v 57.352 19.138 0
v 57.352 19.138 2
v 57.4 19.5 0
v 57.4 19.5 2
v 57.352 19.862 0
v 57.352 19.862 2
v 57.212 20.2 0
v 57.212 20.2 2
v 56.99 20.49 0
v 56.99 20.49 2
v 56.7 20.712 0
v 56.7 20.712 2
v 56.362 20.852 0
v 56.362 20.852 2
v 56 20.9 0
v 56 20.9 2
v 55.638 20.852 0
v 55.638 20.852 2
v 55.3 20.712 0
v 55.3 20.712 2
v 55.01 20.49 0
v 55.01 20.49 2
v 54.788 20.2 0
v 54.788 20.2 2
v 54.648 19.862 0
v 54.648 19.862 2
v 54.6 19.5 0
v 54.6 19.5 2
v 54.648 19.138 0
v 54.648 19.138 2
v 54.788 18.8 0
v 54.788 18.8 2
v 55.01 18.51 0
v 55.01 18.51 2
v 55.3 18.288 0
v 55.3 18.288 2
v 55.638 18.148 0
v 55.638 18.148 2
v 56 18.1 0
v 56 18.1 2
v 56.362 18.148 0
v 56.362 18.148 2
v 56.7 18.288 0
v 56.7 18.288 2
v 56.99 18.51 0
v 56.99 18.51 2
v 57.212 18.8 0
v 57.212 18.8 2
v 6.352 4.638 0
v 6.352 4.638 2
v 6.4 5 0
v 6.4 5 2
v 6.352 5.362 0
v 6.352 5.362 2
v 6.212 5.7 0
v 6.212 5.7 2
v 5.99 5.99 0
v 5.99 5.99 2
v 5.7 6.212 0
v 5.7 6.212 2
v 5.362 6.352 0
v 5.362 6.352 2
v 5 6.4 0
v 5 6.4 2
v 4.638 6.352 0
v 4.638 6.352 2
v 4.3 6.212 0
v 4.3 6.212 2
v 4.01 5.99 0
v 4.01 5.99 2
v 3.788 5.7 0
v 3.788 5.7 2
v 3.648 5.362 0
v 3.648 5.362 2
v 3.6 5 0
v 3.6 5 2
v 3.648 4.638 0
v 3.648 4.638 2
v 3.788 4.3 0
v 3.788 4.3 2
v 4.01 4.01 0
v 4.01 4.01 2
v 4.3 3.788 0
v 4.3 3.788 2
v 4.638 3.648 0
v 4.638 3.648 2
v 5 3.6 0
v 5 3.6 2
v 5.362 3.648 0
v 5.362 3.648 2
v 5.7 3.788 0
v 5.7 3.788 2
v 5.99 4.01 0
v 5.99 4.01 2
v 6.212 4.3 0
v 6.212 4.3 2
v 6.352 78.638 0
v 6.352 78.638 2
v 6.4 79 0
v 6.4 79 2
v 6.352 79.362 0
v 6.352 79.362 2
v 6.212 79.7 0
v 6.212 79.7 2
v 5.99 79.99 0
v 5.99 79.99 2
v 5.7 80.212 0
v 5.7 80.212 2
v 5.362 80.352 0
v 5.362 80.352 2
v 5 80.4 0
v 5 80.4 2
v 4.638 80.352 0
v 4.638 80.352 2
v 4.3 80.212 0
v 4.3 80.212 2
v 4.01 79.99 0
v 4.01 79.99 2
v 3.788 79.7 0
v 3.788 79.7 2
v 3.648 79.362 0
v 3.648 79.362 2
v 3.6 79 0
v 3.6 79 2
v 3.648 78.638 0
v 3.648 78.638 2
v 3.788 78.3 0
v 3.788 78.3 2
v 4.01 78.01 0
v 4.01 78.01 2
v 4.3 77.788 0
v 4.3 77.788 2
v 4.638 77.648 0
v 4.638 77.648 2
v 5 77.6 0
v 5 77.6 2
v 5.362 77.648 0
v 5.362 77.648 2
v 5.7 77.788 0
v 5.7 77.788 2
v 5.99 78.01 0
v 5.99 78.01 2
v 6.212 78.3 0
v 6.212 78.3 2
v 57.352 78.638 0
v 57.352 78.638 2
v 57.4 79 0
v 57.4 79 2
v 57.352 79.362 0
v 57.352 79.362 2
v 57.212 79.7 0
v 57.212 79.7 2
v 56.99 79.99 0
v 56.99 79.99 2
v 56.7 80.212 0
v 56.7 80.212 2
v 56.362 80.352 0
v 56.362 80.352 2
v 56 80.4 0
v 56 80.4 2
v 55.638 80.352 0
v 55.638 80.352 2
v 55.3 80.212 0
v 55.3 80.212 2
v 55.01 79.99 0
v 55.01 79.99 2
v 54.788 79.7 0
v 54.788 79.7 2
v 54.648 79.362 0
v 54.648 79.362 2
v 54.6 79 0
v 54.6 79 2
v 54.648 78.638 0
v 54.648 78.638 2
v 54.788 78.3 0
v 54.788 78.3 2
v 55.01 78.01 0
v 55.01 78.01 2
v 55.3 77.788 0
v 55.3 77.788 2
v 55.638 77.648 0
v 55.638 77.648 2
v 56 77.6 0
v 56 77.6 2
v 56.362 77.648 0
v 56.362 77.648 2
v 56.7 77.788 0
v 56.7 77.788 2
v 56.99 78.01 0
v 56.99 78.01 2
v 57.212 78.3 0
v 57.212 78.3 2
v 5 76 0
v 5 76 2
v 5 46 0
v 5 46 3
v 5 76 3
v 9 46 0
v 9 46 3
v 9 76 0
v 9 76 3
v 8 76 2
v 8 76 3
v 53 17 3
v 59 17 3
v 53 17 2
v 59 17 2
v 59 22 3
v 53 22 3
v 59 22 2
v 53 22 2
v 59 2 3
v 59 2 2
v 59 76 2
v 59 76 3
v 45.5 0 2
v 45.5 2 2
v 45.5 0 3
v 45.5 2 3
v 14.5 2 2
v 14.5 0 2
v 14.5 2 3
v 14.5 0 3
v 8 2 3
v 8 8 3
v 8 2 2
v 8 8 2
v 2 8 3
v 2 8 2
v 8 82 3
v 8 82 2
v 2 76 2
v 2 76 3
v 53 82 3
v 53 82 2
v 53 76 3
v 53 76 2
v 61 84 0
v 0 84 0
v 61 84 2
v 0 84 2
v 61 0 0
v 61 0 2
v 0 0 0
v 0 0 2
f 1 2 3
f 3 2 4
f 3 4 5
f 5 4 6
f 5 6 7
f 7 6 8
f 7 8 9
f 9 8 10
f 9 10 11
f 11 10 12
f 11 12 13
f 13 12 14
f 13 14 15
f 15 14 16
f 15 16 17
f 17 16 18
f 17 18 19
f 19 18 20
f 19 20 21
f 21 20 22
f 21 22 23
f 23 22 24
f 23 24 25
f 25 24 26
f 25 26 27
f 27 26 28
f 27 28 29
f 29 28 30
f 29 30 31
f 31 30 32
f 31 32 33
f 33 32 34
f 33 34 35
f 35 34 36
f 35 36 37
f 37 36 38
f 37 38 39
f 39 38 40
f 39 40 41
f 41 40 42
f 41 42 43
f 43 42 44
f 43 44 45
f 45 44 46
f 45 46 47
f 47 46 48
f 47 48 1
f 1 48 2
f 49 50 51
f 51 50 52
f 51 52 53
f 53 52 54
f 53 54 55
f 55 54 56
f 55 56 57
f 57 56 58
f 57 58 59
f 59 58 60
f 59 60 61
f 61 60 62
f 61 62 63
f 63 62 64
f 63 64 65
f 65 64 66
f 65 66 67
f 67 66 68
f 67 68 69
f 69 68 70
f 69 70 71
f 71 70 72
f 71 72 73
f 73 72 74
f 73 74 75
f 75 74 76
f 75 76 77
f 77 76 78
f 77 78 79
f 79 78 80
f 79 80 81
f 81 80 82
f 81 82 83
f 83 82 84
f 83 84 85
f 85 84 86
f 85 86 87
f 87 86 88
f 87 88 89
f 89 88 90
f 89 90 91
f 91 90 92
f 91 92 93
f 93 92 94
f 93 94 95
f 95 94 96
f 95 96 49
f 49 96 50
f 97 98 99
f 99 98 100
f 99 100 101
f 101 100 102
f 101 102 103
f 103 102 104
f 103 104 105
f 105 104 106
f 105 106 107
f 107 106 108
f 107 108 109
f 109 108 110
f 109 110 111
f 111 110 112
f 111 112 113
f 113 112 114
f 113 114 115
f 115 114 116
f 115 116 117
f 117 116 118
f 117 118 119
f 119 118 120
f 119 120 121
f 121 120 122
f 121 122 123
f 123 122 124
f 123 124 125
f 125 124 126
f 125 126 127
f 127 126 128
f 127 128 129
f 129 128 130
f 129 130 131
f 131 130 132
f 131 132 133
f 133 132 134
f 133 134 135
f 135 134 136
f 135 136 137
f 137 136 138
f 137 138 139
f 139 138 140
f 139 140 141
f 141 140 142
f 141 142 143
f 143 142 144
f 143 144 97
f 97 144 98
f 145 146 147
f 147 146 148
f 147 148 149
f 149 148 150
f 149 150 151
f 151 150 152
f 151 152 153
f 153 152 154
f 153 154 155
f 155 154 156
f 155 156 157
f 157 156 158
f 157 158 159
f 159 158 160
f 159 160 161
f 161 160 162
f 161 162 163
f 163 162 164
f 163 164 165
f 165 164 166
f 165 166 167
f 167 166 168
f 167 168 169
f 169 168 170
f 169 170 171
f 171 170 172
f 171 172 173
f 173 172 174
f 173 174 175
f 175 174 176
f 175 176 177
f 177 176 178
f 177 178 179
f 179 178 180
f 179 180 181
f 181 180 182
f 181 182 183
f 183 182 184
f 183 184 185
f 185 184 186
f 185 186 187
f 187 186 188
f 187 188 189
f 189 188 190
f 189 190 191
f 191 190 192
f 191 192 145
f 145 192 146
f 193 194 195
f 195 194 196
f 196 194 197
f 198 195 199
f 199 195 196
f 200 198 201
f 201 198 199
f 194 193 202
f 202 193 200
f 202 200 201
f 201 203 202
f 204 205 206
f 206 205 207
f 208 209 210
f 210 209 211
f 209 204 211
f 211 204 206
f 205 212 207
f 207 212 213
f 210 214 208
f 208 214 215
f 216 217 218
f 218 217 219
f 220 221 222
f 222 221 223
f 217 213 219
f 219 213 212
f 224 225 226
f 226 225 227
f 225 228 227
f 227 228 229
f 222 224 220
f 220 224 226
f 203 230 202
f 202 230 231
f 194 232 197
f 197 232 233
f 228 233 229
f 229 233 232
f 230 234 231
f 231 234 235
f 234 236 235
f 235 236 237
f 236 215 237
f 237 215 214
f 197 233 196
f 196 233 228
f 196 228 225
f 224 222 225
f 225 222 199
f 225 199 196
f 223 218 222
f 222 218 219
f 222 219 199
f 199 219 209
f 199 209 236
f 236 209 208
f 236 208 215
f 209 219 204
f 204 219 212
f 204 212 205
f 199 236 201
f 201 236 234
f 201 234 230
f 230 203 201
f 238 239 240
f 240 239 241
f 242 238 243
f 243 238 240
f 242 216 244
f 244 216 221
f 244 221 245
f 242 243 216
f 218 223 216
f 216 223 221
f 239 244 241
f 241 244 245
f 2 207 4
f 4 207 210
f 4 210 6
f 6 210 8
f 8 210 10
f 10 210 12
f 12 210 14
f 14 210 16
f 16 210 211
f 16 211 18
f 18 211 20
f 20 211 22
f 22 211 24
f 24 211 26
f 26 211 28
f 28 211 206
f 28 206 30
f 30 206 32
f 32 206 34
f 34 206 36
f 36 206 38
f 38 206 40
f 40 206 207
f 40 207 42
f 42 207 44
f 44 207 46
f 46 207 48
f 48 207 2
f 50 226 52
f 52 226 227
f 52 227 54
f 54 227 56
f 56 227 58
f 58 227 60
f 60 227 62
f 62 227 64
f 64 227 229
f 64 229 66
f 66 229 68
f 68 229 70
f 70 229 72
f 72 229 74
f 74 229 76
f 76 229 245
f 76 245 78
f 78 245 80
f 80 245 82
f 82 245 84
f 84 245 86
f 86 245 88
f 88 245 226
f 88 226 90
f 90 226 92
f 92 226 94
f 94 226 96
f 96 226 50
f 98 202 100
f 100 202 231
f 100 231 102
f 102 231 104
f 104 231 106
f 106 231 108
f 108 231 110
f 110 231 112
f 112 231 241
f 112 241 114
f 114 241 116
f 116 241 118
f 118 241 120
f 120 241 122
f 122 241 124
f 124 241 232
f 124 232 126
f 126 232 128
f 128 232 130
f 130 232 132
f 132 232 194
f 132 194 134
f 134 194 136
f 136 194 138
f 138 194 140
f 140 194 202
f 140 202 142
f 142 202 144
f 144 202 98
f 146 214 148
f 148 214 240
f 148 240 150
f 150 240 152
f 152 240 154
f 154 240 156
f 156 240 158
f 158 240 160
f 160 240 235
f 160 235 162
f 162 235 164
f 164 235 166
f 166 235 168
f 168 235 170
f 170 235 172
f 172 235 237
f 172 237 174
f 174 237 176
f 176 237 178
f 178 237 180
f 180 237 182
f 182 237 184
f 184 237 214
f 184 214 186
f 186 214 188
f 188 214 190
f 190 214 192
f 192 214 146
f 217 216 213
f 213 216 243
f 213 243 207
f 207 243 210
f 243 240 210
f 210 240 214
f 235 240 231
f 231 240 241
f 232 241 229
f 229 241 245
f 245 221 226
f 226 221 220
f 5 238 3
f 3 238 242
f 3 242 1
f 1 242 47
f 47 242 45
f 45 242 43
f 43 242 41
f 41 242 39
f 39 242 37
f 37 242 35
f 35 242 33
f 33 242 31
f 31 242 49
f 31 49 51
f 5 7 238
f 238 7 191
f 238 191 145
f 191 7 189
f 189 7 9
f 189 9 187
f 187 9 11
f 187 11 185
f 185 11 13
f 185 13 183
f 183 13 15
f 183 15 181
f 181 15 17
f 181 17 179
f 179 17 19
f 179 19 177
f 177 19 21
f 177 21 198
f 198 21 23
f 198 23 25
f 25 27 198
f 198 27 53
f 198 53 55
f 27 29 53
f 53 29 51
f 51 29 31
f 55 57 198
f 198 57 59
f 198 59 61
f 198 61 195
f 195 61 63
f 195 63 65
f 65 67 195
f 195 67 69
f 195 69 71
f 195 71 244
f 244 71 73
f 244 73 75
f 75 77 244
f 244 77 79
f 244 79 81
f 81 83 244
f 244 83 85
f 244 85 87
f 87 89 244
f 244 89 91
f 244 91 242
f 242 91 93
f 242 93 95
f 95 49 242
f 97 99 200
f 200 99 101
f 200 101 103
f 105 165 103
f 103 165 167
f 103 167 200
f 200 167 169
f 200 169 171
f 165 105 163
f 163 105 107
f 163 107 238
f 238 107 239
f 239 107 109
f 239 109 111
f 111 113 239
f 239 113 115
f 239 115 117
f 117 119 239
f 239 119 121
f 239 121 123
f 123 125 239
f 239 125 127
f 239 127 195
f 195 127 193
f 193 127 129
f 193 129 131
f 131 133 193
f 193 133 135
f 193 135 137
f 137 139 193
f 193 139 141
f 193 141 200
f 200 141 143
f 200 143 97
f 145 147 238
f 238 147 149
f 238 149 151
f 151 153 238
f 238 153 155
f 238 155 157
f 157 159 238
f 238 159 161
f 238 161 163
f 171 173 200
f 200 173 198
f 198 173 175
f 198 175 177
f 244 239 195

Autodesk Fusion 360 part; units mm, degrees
sketch "Sketch1" plane through (0, 0, 0) normal (0, 0, 1) x (1, 0, 0)
  line L0 (0, 0) -> (61, 0)
  line L1 (61, 0) -> (61, 84)
  line L2 (61, 84) -> (0, 84)
  line L3 (0, 84) -> (0, 0)
  dimension "d1" = 61
  dimension "d2" = 84
extrude "Extrude1" add sketch "Sketch1" along normal blind 2
sketch "Sketch2" plane through (0, 0, 2) normal (0, 0, 1) x (-1, 0, 0)
  line L0 (0, -84) -> (0, 0)
  line L1 (0, 0) -> (-61, 0)
  line L2 (-61, 0) -> (-61, -84)
  line L3 (-61, -84) -> (0, -84)
  line L4 (-2, -2) -> (-59, -2)
  line L5 (-59, -2) -> (-59, -82)
  line L6 (-59, -82) -> (-2, -82)
  line L7 (-2, -82) -> (-2, -2)
  dimension "d5" = 57
  dimension "d6" = 80
extrude "Extrude2" add sketch "Sketch2" along normal blind 1 contours L4 L5 L6 L7
sketch "Sketch3" plane through (0, 0, 3) normal (0, 0, 1) x (-1, 0, 0)
  line L0 (-2, -82) -> (-2, -2)
  line L1 (-2, -2) -> (-59, -2)
  line L2 (-59, -2) -> (-59, -82)
  line L3 (-59, -82) -> (-2, -82)
  line L4 (-59, -82) -> (-53, -82)
  line L5 (-53, -82) -> (-53, -76)
  line L6 (-53, -76) -> (-59, -76)
  line L7 (-59, -76) -> (-59, -82)
extrude "Extrude3" cut sketch "Sketch3" against normal blind 1 contours L2 L3 L4 L5 L6 L7
sketch "Sketch4" plane through (0, 0, 3) normal (0, 0, 1) x (-1, 0, 0)
  line L0 (-53, -76) -> (-53, -82)
  line L1 (-53, -82) -> (-2, -82)
  line L2 (-2, -82) -> (-2, -2)
  line L3 (-2, -2) -> (-59, -2)
  line L4 (-59, -2) -> (-59, -76)
  line L5 (-59, -76) -> (-53, -76)
  line L6 (-2, -82) -> (-8, -82)
  line L7 (-8, -82) -> (-8, -76)
  line L8 (-8, -76) -> (-2, -76)
  line L9 (-2, -76) -> (-2, -82)
extrude "Extrude4" cut sketch "Sketch4" against normal blind 1 contours L1 L2 L6 L7 L8 L9
sketch "Sketch5" plane through (0, 0, 3) normal (0, 0, 1) x (-1, 0, 0)
  line L0 (-8, -76) -> (-2, -76)
  line L1 (-2, -76) -> (-2, -2)
  line L2 (-2, -2) -> (-59, -2)
  line L3 (-59, -2) -> (-59, -76)
  line L4 (-59, -76) -> (-53, -76)
  line L5 (-53, -76) -> (-53, -82)
  line L6 (-53, -82) -> (-8, -82)
  line L7 (-8, -82) -> (-8, -76)
  line L8 (-2, -2) -> (-8, -2)
  line L9 (-8, -2) -> (-8, -8)
  line L10 (-8, -8) -> (-2, -8)
  line L11 (-2, -8) -> (-2, -2)
extrude "Extrude5" cut sketch "Sketch5" against normal blind 1 contours L1 L2 L8 L9 L10 L11
sketch "Sketch6" plane through (0, 0, 2) normal (0, 0, 1) x (-1, 0, 0)
  line L0 (-8, -82) -> (-53, -82)
  line L1 (-53, -82) -> (-53, -76)
  line L2 (-53, -76) -> (-59, -76)
  line L3 (-59, -76) -> (-59, -2)
  line L4 (-59, -2) -> (-8, -2)
  line L5 (-8, -2) -> (-8, -8)
  line L6 (-8, -8) -> (-2, -8)
  line L7 (-2, -8) -> (-2, -76)
  line L8 (-2, -76) -> (-8, -76)
  line L9 (-8, -76) -> (-8, -82)
  line L10 (0, -84) -> (0, 0)
  line L11 (0, 0) -> (-61, 0)
  line L12 (-61, 0) -> (-61, -84)
  line L13 (-61, -84) -> (0, -84)
  line L14 (-14.5, 0) -> (-45.5, 0)
  line L15 (-45.5, 0) -> (-45.5, -2)
  line L16 (-45.5, -2) -> (-14.5, -2)
  line L17 (-14.5, -2) -> (-14.5, 0)
  dimension "d15" = 31
  dimension "d16" = 2
extrude "Extrude6" add sketch "Sketch6" along normal blind 1 contours L4 L11 L14 L15 L16 L17
sketch "Sketch7" plane through (0, 0, 3) normal (0, 0, 1) x (-1, 0, 0)
  line L0 (-8, -8) -> (-8, -2)
  line L1 (-8, -2) -> (-14.5, -2)
  line L2 (-14.5, -2) -> (-14.5, 0)
  line L3 (-14.5, 0) -> (-45.5, 0)
  line L4 (-45.5, 0) -> (-45.5, -2)
  line L5 (-45.5, -2) -> (-59, -2)
  line L6 (-59, -2) -> (-59, -76)
  line L7 (-59, -76) -> (-53, -76)
  line L8 (-53, -76) -> (-53, -82)
  line L9 (-53, -82) -> (-8, -82)
  line L10 (-8, -82) -> (-8, -76)
  line L11 (-8, -76) -> (-2, -76)
  line L12 (-2, -76) -> (-2, -8)
  line L13 (-2, -8) -> (-8, -8)
  line L14 (-53, -17) -> (-59, -17)
  line L15 (-59, -17) -> (-59, -22)
  line L16 (-59, -22) -> (-53, -22)
  line L17 (-53, -22) -> (-53, -17)
  dimension "d19" = 5
extrude "Extrude7" cut sketch "Sketch7" against normal blind 1 contours L6 L14 L15 L16 L17
sketch "Sketch8" plane through (0, 0, 3) normal (0, 0, 1) x (-1, 0, 0)
  line L0 (-53, -22) -> (-59, -22)
  line L1 (-59, -22) -> (-59, -76)
  line L2 (-59, -76) -> (-53, -76)
  line L3 (-53, -76) -> (-53, -82)
  line L4 (-53, -82) -> (-8, -82)
  line L5 (-8, -82) -> (-8, -76)
  line L6 (-8, -76) -> (-2, -76)
  line L7 (-2, -76) -> (-2, -8)
  line L8 (-2, -8) -> (-8, -8)
  line L9 (-8, -8) -> (-8, -2)
  line L10 (-8, -2) -> (-14.5, -2)
  line L11 (-14.5, -2) -> (-14.5, 0)
  line L12 (-14.5, 0) -> (-45.5, 0)
  line L13 (-45.5, 0) -> (-45.5, -2)
  line L14 (-45.5, -2) -> (-59, -2)
  line L15 (-59, -2) -> (-59, -17)
  line L16 (-59, -17) -> (-53, -17)
  line L17 (-53, -17) -> (-53, -22)
  line L18 (-5, -76) -> (-9, -76)
  line L19 (-9, -76) -> (-9, -46)
  line L20 (-9, -46) -> (-5, -46)
  line L21 (-5, -46) -> (-5, -76)
  dimension "d22" = 4
  dimension "d23" = 30
extrude "Extrude8" cut sketch "Sketch8" against normal blind 4 contours L6 L18 L19 L20 L21
sketch "Sketch9" plane through (0, 0, 2) normal (0, 0, 1) x (-1, 0, 0)
  line L0 (-45.5, -2) -> (-45.5, 0)
  line L1 (-45.5, 0) -> (-61, 0)
  line L2 (-61, 0) -> (-61, -84)
  line L3 (-61, -84) -> (0, -84)
  line L4 (0, -84) -> (0, 0)
  line L5 (0, 0) -> (-14.5, 0)
  line L6 (-14.5, 0) -> (-14.5, -2)
  line L7 (-14.5, -2) -> (-8, -2)
  line L8 (-8, -2) -> (-8, -8)
  line L9 (-8, -8) -> (-2, -8)
  line L10 (-2, -8) -> (-2, -76)
  line L11 (-2, -76) -> (-5, -76)
  line L12 (-5, -76) -> (-8, -76)
  line L13 (-8, -76) -> (-8, -82)
  line L14 (-8, -82) -> (-53, -82)
  line L15 (-53, -82) -> (-53, -76)
  line L16 (-53, -76) -> (-59, -76)
  line L17 (-59, -76) -> (-59, -22)
  line L18 (-59, -22) -> (-53, -22)
  line L19 (-53, -22) -> (-53, -17)
  line L20 (-53, -17) -> (-59, -17)
  line L21 (-59, -17) -> (-59, -2)
  line L22 (-59, -2) -> (-45.5, -2)
  circle A0 centre (-56, -79) radius 1.4
  dimension "d26" = 2.8
extrude "Extrude9" cut sketch "Sketch9" against normal blind 3.5 contours A0
sketch "Sketch10" plane through (0, 0, 2) normal (0, 0, 1) x (-1, 0, 0)
  circle A0 centre (-56, -79) radius 1.4
  line L0 (-45.5, -2) -> (-45.5, 0)
  line L1 (-45.5, 0) -> (-61, 0)
  line L2 (-61, 0) -> (-61, -84)
  line L3 (-61, -84) -> (0, -84)
  line L4 (0, -84) -> (0, 0)
  line L5 (0, 0) -> (-14.5, 0)
  line L6 (-14.5, 0) -> (-14.5, -2)
  line L7 (-14.5, -2) -> (-8, -2)
  line L8 (-8, -2) -> (-8, -8)
  line L9 (-8, -8) -> (-2, -8)
  line L10 (-2, -8) -> (-2, -76)
  line L11 (-2, -76) -> (-5, -76)
  line L12 (-5, -76) -> (-8, -76)
  line L13 (-8, -76) -> (-8, -82)
  line L14 (-8, -82) -> (-53, -82)
  line L15 (-53, -82) -> (-53, -76)
  line L16 (-53, -76) -> (-59, -76)
  line L17 (-59, -76) -> (-59, -22)
  line L18 (-59, -22) -> (-53, -22)
  line L19 (-53, -22) -> (-53, -17)
  line L20 (-53, -17) -> (-59, -17)
  line L21 (-59, -17) -> (-59, -2)
  line L22 (-59, -2) -> (-45.5, -2)
  circle A1 centre (-5, -79) radius 1.4
  dimension "d29" = 2.8
extrude "Extrude10" cut sketch "Sketch10" against normal blind 4.5 contours A1
sketch "Sketch11" plane through (0, 0, 2) normal (0, 0, 1) x (-1, 0, 0)
  circle A0 centre (-5, -79) radius 1.4
  circle A1 centre (-56, -79) radius 1.4
  line L0 (-45.5, -2) -> (-45.5, 0)
  line L1 (-45.5, 0) -> (-61, 0)
  line L2 (-61, 0) -> (-61, -84)
  line L3 (-61, -84) -> (0, -84)
  line L4 (0, -84) -> (0, 0)
  line L5 (0, 0) -> (-14.5, 0)
  line L6 (-14.5, 0) -> (-14.5, -2)
  line L7 (-14.5, -2) -> (-8, -2)
  line L8 (-8, -2) -> (-8, -8)
  line L9 (-8, -8) -> (-2, -8)
  line L10 (-2, -8) -> (-2, -76)
  line L11 (-2, -76) -> (-5, -76)
  line L12 (-5, -76) -> (-8, -76)
  line L13 (-8, -76) -> (-8, -82)
  line L14 (-8, -82) -> (-53, -82)
  line L15 (-53, -82) -> (-53, -76)
  line L16 (-53, -76) -> (-59, -76)
  line L17 (-59, -76) -> (-59, -22)
  line L18 (-59, -22) -> (-53, -22)
  line L19 (-53, -22) -> (-53, -17)
  line L20 (-53, -17) -> (-59, -17)
  line L21 (-59, -17) -> (-59, -2)
  line L22 (-59, -2) -> (-45.5, -2)
  circle A2 centre (-5, -5) radius 1.4
  dimension "d32" = 2.8
extrude "Extrude11" cut sketch "Sketch11" against normal blind 5 contours A2
sketch "Sketch12" plane through (0, 0, 2) normal (0, 0, 1) x (-1, 0, 0)
  circle A0 centre (-5, -5) radius 1.4
  circle A1 centre (-5, -79) radius 1.4
  circle A2 centre (-56, -79) radius 1.4
  line L0 (-45.5, -2) -> (-45.5, 0)
  line L1 (-45.5, 0) -> (-61, 0)
  line L2 (-61, 0) -> (-61, -84)
  line L3 (-61, -84) -> (0, -84)
  line L4 (0, -84) -> (0, 0)
  line L5 (0, 0) -> (-14.5, 0)
  line L6 (-14.5, 0) -> (-14.5, -2)
  line L7 (-14.5, -2) -> (-8, -2)
  line L8 (-8, -2) -> (-8, -8)
  line L9 (-8, -8) -> (-2, -8)
  line L10 (-2, -8) -> (-2, -76)
  line L11 (-2, -76) -> (-5, -76)
  line L12 (-5, -76) -> (-8, -76)
  line L13 (-8, -76) -> (-8, -82)
  line L14 (-8, -82) -> (-53, -82)
  line L15 (-53, -82) -> (-53, -76)
  line L16 (-53, -76) -> (-59, -76)
  line L17 (-59, -76) -> (-59, -22)
  line L18 (-59, -22) -> (-53, -22)
  line L19 (-53, -22) -> (-53, -17)
  line L20 (-53, -17) -> (-59, -17)
  line L21 (-59, -17) -> (-59, -2)
  line L22 (-59, -2) -> (-45.5, -2)
  circle A3 centre (-56, -19.5) radius 1.4
  dimension "d35" = 2.8
extrude "Extrude12" cut sketch "Sketch12" against normal blind 4.5 contours A3
